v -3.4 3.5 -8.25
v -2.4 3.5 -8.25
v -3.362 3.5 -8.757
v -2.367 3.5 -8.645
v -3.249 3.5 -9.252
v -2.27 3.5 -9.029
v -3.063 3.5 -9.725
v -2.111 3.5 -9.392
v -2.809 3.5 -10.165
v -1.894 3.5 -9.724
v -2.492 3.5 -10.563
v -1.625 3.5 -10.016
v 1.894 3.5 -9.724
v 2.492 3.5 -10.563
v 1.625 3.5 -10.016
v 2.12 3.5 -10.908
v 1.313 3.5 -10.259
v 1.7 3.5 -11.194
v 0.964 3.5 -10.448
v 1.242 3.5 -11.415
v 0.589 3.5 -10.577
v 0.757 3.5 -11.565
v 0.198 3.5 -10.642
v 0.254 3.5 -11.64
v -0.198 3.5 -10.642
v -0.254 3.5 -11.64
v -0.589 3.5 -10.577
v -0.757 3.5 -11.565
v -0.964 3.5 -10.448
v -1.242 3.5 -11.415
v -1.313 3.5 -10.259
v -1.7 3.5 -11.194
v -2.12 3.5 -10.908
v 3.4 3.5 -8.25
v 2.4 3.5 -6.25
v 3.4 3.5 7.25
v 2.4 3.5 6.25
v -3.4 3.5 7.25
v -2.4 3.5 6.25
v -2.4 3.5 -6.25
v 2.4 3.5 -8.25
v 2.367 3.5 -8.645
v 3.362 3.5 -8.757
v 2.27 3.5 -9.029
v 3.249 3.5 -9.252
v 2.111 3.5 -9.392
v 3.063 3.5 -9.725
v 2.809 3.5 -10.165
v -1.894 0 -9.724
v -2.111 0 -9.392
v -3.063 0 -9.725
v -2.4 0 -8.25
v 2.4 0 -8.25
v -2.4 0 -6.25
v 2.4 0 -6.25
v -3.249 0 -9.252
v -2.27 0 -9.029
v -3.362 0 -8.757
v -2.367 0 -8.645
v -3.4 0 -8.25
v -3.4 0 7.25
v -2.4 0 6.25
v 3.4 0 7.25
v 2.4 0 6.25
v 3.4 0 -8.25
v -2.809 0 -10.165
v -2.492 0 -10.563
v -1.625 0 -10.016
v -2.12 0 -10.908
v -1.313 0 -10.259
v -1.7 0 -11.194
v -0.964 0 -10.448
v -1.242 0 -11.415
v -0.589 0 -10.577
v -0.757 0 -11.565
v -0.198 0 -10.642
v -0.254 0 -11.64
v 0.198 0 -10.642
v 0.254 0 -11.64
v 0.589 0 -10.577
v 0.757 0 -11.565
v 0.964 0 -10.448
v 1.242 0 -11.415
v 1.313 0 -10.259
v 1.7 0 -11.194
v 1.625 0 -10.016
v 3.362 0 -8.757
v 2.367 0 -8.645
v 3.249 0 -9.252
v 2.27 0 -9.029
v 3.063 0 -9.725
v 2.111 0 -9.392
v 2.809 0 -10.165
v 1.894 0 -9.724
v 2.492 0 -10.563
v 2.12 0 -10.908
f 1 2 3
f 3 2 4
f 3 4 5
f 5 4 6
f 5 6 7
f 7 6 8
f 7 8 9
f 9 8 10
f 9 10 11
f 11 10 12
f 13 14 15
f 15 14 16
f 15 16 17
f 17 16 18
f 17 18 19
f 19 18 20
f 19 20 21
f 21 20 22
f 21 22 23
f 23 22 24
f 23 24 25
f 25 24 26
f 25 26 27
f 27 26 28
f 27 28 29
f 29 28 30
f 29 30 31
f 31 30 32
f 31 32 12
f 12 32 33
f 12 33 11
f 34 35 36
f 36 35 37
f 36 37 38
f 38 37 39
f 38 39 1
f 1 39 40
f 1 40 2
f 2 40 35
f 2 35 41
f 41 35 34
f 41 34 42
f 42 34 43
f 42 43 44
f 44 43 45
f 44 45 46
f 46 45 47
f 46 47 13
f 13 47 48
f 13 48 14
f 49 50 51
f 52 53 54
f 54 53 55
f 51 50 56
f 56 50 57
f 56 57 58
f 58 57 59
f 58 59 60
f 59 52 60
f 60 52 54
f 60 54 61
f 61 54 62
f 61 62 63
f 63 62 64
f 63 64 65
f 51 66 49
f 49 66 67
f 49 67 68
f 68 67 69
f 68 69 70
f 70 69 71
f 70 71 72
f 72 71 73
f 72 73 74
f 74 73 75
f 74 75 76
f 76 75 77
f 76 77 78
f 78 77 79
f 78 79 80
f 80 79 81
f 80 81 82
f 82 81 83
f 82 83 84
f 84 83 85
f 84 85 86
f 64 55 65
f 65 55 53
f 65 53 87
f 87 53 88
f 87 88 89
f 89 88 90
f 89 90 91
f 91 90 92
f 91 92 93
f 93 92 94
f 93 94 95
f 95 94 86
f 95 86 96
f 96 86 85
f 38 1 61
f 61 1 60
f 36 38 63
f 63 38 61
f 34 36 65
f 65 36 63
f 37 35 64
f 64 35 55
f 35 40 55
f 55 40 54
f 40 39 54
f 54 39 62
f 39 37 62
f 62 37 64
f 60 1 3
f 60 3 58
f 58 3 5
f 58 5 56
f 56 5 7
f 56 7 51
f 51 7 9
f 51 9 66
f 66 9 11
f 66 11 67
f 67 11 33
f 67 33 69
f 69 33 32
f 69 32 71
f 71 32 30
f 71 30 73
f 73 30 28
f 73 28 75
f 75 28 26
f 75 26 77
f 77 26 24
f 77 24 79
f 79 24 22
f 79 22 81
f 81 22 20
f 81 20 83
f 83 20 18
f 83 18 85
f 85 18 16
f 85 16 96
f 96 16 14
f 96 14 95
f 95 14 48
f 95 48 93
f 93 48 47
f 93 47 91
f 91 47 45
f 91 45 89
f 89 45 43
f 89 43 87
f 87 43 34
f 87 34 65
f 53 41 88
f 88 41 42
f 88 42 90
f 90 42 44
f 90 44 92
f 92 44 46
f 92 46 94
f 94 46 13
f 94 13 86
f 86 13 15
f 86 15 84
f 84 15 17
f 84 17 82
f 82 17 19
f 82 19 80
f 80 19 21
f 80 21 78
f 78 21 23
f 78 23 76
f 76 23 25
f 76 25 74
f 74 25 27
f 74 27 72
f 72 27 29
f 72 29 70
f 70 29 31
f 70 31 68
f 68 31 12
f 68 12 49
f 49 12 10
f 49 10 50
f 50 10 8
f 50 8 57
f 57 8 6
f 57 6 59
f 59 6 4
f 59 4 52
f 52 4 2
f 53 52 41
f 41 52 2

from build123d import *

# Parameters (mm, degrees)
SKETCH1_W           = 6.8
SKETCH1_H           = 14.5
SKETCH1_W_2         = 4.8
SKETCH1_H_2         = 12.5
BOSS_EXTRUDE1_DEPTH = 3.5
BOSS_EXTRUDE2_DEPTH = 3.5


with BuildPart() as part:
    # Sketch1 → Boss-Extrude1 (new body)
    with BuildSketch(Plane(origin=(0, 0, 0), x_dir=(1, 0, 0), z_dir=(0, 1, 0))):
        Rectangle(SKETCH1_W, SKETCH1_H)
        Rectangle(SKETCH1_W_2, SKETCH1_H_2, mode=Mode.SUBTRACT)
    extrude(amount=BOSS_EXTRUDE1_DEPTH)

    # Sketch2 → Boss-Extrude2 (add)
    with BuildSketch(Plane(origin=(0, 3.5, 0), x_dir=(1, 0, 0), z_dir=(0, 1, 0))):
        with BuildLine():
            Line((-3.4, 7.25), (3.4, 7.25))
            Line((3.4, 7.25), (3.4, 8.25))
            ThreePointArc((3.4, 8.25), (0, 11.65), (-3.4, 8.25))
            Line((-3.4, 8.25), (-3.4, 7.25))
        make_face()
        with BuildLine():
            Line((-2.4, 8.25), (2.4, 8.25))
            ThreePointArc((2.4, 8.25), (0, 10.65), (-2.4, 8.25))
        make_face(mode=Mode.SUBTRACT)
    extrude(amount=-BOSS_EXTRUDE2_DEPTH)


solid = part.part
